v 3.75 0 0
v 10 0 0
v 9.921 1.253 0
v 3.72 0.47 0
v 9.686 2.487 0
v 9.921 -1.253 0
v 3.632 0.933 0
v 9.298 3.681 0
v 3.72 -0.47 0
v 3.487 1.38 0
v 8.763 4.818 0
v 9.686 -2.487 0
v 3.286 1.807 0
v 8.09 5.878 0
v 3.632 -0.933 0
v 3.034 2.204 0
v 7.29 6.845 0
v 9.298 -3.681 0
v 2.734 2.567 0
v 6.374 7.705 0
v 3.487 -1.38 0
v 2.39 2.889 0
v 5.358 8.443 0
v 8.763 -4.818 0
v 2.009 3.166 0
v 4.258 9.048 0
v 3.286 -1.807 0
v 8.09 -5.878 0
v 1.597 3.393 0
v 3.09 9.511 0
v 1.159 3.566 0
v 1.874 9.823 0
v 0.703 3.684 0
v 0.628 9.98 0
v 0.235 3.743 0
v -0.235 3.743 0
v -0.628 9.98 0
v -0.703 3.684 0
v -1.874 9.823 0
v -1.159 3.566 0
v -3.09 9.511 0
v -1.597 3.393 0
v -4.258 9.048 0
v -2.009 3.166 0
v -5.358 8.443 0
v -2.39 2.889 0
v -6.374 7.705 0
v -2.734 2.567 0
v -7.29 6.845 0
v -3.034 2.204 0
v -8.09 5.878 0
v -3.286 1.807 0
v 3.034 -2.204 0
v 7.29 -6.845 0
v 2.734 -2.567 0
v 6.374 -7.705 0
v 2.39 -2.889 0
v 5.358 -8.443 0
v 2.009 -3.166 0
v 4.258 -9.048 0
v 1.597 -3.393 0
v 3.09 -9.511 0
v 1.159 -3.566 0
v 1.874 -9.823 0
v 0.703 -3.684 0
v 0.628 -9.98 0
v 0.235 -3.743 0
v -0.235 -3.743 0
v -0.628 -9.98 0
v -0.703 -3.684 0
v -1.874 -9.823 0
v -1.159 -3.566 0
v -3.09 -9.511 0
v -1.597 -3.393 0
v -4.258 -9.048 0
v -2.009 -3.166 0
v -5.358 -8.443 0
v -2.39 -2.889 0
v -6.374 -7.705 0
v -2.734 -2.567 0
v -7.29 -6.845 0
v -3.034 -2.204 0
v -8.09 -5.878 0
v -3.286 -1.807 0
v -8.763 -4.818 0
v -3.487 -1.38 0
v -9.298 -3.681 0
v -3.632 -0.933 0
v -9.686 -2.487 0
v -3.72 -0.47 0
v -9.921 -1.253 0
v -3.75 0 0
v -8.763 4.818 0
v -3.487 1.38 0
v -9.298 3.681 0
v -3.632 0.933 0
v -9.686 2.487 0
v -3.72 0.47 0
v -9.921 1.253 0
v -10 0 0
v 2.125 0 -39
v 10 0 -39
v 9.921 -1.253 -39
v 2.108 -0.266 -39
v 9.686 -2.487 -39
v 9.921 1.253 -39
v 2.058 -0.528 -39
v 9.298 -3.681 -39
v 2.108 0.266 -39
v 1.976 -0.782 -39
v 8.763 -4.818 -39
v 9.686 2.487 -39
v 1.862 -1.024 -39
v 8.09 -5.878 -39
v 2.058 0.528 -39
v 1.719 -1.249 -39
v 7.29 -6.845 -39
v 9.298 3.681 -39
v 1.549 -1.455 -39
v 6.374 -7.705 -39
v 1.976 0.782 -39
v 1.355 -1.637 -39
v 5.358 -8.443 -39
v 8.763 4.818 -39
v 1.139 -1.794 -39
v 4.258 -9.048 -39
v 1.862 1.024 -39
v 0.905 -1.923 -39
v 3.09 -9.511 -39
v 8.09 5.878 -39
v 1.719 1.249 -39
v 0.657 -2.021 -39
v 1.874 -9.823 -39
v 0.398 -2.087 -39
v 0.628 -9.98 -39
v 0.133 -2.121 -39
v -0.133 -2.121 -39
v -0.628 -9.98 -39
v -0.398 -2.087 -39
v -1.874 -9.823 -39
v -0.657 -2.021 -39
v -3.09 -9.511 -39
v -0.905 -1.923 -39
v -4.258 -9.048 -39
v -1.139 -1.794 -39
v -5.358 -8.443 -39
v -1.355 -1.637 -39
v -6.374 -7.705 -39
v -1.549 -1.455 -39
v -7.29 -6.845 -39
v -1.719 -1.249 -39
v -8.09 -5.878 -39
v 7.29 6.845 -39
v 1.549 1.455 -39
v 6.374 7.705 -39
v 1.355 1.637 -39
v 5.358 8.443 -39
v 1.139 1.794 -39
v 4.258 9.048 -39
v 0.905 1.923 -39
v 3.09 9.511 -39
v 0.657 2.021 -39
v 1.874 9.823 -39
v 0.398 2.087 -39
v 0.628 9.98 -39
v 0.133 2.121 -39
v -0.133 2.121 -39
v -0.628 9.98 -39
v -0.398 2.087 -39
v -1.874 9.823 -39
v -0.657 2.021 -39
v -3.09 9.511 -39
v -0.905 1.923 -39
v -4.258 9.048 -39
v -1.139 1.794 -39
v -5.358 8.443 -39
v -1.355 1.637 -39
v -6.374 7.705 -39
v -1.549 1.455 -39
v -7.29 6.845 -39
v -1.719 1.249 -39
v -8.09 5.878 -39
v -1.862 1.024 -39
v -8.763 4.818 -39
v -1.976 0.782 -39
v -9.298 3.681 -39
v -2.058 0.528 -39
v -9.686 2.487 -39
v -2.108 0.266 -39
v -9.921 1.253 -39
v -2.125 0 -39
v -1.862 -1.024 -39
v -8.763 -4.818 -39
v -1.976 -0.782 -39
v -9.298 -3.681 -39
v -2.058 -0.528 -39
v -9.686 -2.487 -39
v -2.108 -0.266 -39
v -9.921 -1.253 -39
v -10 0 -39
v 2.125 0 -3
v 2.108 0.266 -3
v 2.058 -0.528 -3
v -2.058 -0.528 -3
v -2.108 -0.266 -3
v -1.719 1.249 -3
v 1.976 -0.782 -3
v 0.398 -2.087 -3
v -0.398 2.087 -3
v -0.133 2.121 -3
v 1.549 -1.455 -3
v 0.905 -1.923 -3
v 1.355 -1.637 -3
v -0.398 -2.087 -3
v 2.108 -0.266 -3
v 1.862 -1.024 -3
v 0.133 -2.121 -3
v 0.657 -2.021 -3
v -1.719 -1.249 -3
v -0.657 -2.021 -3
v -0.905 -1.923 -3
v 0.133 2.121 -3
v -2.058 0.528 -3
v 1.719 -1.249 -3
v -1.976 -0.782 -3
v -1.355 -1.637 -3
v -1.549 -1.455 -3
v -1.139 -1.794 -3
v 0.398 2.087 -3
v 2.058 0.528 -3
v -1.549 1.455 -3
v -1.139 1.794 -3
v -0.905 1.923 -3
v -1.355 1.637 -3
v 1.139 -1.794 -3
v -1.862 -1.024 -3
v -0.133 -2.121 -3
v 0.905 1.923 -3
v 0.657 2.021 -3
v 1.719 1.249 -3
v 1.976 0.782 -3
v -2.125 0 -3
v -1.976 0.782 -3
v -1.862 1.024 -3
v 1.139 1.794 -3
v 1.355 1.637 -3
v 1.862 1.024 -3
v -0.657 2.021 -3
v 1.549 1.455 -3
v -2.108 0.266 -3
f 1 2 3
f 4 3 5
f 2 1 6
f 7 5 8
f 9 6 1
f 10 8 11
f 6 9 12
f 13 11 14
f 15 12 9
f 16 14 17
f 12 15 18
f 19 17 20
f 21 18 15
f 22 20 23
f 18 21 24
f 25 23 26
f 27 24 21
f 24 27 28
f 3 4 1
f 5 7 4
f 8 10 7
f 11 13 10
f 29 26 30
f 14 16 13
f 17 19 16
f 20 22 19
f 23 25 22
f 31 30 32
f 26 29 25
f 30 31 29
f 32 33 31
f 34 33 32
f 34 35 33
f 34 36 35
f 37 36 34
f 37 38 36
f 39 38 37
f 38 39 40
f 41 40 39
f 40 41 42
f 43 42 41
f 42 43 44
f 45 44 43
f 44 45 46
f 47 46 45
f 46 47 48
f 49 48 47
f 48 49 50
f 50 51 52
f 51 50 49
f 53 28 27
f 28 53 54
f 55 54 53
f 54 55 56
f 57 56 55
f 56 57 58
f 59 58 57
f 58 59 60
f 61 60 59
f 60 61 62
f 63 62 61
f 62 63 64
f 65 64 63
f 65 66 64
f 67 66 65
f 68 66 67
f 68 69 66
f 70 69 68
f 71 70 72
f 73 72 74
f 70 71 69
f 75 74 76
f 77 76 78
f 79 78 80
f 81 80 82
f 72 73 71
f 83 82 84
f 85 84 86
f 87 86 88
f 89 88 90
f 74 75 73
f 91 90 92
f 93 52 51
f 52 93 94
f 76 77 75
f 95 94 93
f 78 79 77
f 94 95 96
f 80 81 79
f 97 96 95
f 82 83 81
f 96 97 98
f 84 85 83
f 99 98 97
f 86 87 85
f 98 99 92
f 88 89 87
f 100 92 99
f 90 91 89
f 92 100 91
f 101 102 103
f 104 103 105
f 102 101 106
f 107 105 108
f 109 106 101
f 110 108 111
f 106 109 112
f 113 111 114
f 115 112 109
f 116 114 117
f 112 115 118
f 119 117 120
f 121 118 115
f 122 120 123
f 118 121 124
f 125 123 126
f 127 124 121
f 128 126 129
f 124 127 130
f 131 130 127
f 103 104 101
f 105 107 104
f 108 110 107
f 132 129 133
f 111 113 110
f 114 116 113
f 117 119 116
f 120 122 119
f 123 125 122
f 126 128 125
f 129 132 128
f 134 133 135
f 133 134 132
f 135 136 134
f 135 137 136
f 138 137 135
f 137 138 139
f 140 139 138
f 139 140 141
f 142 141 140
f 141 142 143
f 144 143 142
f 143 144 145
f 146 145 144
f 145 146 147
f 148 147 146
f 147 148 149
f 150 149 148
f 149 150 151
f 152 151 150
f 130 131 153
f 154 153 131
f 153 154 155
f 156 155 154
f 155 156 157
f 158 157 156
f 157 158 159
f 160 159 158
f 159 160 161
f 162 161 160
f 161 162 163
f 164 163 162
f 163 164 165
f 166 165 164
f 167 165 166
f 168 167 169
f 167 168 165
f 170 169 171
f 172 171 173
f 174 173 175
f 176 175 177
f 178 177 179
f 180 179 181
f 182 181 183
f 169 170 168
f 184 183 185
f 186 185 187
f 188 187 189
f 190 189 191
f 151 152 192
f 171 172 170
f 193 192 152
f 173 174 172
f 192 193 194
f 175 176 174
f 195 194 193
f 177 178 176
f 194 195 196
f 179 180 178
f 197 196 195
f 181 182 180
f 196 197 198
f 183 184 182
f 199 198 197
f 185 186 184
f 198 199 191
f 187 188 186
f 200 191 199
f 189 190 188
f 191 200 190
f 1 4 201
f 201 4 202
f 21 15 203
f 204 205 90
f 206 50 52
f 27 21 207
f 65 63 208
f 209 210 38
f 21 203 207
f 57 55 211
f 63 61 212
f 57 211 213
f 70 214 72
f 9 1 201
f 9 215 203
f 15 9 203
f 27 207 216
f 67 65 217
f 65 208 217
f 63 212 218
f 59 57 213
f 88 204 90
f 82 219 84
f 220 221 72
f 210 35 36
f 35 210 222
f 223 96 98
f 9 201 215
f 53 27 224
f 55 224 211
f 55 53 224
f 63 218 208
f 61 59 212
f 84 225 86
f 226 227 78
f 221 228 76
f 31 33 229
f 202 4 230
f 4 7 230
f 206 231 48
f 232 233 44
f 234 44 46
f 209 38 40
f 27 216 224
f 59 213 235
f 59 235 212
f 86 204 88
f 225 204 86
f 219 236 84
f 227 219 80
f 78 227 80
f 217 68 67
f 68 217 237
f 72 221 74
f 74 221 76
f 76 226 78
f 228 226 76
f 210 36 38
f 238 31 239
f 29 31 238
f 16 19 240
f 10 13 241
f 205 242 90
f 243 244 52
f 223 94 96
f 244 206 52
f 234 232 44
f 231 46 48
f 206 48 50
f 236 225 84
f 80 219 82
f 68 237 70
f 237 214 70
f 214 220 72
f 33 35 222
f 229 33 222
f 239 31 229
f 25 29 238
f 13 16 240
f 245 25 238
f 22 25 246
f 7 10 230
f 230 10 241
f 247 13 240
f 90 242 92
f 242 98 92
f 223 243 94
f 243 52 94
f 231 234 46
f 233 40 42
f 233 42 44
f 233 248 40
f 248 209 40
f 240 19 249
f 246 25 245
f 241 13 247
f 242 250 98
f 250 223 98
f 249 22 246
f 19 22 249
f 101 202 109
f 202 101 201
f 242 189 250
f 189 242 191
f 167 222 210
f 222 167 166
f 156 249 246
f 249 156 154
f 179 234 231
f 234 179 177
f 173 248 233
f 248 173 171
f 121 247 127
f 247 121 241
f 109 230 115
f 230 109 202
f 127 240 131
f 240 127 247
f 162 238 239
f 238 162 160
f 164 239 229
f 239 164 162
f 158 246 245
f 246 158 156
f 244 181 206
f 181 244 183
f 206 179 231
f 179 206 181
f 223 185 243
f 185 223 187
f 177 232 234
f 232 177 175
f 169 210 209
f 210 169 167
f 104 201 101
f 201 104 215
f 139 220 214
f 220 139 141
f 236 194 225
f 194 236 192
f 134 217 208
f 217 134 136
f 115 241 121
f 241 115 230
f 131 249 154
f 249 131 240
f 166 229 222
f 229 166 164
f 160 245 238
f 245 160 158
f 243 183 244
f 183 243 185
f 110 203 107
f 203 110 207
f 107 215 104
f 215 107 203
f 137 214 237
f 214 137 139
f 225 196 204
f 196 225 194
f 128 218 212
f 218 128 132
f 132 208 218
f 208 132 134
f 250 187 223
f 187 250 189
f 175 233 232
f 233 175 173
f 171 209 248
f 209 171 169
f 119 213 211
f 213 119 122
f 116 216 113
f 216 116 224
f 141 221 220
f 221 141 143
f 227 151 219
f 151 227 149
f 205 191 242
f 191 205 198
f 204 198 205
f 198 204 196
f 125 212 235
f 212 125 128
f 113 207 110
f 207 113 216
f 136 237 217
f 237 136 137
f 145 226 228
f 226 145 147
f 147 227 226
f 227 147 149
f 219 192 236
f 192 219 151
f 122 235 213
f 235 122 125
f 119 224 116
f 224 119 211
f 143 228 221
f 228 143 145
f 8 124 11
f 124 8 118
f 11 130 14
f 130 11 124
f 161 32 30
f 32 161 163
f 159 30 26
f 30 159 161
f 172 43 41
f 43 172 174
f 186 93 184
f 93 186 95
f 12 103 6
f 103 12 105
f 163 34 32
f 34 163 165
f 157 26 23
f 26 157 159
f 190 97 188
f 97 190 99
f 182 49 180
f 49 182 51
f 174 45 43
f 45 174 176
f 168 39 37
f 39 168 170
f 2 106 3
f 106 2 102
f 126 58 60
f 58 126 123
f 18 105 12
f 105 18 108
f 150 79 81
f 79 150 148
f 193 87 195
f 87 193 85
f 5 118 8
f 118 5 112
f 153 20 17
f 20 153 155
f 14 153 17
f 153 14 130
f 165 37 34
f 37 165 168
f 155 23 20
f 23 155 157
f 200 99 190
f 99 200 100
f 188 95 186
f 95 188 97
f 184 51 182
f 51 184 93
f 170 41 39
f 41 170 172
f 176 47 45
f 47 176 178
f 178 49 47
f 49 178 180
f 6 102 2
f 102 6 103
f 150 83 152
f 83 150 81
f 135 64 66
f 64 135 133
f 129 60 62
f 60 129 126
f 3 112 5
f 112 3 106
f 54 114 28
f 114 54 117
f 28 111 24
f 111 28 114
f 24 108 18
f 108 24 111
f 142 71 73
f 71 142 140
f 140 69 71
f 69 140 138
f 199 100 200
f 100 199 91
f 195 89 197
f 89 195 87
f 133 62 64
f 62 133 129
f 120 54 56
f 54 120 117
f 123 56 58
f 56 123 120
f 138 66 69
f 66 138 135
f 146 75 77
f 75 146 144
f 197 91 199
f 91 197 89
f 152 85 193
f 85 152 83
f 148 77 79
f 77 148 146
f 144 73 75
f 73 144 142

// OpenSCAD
$fn = 50;


difference() {
	union() {
		translate(v = [0, 0, -39.0000000000]) {
			cylinder(h = 39, r = 10.0000000000);
		}
		cylinder(h = 0, r = 20.0000000000);
	}
	union() {
		translate(v = [0, 0, 0]) {
			rotate(a = [0, 0, 0]) {
				difference() {
					union() {
						#translate(v = [0, 0, -39.0000000000]) {
							cylinder(h = 39, r = 2.0000000000);
						}
						#translate(v = [0, 0, -3]) {
							cylinder(h = 3, r1 = 2.1250000000, r2 = 3.7500000000);
						}
						#translate(v = [0, 0, -39.0000000000]) {
							cylinder(h = 39, r = 2.1250000000);
						}
						#translate(v = [0, 0, -39.0000000000]) {
							cylinder(h = 39, r = 2.0000000000);
						}
					}
					union();
				}
			}
		}
	}
}
